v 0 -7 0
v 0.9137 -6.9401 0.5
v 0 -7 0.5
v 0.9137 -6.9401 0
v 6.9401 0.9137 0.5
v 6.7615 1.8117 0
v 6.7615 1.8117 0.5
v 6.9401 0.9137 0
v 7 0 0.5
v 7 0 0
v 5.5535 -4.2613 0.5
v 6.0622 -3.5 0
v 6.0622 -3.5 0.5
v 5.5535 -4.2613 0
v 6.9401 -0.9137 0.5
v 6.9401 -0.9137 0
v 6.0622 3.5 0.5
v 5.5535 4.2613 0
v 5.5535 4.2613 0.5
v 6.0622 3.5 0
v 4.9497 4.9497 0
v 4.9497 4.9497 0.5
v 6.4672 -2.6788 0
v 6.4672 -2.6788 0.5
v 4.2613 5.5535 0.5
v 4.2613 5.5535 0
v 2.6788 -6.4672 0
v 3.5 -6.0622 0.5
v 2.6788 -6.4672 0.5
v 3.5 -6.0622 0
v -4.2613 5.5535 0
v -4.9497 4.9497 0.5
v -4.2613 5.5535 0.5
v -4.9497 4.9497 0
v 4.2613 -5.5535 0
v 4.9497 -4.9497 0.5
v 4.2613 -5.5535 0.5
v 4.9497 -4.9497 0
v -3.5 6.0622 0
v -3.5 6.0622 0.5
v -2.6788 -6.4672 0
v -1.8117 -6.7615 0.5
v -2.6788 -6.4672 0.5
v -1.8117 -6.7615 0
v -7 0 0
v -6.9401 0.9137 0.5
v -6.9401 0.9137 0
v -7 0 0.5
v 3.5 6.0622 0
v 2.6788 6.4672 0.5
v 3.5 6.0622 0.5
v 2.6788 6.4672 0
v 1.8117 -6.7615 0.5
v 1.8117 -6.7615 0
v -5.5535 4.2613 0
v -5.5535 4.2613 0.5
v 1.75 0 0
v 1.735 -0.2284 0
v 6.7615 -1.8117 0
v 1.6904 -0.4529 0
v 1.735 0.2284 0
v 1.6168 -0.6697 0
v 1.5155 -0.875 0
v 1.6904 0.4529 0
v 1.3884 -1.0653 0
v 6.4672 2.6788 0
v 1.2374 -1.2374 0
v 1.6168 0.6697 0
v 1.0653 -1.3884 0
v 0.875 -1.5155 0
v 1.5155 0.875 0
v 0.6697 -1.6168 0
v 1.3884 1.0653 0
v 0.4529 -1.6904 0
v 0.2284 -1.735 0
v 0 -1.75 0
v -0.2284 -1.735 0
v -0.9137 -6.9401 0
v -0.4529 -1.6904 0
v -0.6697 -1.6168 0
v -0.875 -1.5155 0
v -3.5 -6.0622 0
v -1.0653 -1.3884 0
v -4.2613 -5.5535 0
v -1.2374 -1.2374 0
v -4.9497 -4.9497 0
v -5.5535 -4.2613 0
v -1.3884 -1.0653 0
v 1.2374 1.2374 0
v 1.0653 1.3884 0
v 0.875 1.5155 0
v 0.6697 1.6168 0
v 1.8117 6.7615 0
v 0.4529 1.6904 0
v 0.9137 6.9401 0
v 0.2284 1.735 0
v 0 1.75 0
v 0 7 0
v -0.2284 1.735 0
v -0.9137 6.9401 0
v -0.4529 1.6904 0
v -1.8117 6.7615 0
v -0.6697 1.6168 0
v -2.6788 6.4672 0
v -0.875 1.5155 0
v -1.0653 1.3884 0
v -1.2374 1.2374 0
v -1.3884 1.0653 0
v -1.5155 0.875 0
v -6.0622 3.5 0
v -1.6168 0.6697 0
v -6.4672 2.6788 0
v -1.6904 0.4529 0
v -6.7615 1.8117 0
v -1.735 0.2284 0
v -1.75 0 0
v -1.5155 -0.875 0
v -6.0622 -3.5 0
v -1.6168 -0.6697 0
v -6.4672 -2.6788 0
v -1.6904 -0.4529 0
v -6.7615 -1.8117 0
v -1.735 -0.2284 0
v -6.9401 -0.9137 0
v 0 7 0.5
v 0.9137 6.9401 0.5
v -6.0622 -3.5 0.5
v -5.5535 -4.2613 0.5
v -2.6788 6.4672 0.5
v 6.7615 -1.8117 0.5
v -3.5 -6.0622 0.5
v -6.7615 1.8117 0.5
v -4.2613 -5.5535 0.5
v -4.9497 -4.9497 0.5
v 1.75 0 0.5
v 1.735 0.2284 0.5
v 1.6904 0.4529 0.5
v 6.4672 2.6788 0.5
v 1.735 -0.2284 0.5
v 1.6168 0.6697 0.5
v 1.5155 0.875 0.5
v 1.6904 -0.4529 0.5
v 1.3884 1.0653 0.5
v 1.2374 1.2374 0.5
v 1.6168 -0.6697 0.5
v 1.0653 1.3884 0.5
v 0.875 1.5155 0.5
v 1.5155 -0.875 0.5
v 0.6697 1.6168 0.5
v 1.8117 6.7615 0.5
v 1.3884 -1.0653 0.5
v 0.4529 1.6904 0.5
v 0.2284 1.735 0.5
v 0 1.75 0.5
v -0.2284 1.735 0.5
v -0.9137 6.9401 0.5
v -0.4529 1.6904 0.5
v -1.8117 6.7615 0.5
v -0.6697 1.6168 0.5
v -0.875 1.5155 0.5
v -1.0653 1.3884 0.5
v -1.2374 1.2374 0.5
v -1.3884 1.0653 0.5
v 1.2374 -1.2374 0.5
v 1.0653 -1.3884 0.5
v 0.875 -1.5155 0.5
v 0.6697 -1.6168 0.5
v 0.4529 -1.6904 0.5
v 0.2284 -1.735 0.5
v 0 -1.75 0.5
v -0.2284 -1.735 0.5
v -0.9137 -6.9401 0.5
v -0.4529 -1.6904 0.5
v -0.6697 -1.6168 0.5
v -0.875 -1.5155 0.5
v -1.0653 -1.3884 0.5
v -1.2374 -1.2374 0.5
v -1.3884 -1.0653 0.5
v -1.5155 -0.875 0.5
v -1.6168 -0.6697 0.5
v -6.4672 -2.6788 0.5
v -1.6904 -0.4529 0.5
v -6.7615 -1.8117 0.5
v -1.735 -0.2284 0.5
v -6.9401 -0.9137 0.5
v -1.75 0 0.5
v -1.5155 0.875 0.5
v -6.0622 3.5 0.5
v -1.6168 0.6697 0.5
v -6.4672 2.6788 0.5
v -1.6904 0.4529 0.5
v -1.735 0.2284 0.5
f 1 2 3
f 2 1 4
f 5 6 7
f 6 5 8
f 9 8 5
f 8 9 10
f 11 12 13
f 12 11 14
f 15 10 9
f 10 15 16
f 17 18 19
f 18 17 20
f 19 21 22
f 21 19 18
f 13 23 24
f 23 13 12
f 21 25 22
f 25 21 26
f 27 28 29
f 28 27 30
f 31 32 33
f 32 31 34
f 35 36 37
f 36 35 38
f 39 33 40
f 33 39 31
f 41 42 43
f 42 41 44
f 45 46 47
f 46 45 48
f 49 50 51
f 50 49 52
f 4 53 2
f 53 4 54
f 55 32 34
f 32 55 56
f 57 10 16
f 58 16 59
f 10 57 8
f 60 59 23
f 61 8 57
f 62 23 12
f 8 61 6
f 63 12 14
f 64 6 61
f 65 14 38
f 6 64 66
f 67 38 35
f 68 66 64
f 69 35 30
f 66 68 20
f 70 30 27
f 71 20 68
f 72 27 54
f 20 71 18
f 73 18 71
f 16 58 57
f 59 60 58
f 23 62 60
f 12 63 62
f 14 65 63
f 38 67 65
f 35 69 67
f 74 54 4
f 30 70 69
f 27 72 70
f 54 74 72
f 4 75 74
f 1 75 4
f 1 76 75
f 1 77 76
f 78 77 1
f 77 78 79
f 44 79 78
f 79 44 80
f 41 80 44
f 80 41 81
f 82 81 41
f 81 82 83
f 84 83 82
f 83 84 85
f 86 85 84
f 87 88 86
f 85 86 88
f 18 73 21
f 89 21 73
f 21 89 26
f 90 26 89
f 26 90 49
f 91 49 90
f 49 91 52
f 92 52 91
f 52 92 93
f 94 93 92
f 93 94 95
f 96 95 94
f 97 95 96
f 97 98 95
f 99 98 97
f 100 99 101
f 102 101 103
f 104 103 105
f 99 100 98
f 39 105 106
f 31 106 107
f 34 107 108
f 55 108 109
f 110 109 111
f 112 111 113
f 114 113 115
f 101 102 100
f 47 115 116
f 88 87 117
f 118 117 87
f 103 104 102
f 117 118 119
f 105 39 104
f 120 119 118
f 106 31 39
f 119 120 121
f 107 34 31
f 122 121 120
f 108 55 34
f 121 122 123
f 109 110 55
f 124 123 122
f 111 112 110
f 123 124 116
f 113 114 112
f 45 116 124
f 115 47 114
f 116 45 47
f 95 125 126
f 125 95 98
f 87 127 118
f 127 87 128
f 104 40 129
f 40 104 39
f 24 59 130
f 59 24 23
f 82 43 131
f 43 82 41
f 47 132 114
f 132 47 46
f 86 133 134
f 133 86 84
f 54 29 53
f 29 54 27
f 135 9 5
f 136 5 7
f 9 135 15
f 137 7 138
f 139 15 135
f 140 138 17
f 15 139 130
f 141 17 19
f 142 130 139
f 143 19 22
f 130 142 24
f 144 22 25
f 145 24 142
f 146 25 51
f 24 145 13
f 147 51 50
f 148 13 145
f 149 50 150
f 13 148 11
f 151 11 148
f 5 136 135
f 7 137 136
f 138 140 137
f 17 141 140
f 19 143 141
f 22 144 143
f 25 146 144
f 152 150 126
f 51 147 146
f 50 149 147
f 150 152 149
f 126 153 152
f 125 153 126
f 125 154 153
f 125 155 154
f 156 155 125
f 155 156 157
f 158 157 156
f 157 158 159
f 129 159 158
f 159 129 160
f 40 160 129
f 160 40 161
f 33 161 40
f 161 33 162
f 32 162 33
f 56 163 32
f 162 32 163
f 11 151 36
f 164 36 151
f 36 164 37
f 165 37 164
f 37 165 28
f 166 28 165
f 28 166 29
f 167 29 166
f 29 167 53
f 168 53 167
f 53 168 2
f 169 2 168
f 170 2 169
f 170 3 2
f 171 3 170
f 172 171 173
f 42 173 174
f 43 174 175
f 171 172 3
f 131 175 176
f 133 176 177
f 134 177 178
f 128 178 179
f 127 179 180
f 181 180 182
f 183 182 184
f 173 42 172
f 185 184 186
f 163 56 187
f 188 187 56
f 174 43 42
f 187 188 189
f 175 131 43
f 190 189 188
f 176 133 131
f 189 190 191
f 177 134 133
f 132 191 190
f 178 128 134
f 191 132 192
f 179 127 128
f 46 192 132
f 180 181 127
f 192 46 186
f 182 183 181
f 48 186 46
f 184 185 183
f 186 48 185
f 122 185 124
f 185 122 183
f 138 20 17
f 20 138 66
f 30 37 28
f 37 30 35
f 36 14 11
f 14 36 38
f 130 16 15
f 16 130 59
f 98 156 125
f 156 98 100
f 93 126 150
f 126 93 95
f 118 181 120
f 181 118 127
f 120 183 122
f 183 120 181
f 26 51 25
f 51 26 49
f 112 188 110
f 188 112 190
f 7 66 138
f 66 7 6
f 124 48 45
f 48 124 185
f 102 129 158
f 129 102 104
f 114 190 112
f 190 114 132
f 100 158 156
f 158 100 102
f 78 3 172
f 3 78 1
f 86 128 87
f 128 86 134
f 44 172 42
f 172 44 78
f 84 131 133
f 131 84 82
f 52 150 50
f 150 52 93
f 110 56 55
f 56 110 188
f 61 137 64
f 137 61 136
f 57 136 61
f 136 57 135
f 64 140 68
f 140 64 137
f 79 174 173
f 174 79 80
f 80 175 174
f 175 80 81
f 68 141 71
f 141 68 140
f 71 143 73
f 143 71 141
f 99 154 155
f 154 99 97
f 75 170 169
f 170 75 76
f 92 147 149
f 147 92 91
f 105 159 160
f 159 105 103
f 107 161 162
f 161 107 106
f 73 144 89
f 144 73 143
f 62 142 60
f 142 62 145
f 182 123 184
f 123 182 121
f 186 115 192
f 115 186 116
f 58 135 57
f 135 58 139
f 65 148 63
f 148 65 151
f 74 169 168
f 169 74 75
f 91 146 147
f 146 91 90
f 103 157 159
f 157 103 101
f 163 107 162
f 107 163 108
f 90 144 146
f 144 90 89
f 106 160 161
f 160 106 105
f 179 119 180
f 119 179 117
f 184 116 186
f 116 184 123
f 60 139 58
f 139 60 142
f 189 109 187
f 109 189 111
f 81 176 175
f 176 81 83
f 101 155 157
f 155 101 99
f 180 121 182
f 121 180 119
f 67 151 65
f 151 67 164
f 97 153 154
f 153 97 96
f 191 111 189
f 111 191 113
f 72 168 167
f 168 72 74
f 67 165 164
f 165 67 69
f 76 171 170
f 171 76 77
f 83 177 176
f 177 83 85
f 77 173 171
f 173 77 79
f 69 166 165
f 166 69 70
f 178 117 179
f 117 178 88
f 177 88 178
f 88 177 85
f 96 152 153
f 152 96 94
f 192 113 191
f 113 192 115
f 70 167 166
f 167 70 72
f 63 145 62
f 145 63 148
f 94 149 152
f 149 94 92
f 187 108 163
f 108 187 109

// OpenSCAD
// Gen-CQ — assembly gap shim, h = run_clear (rotor face -> flange); copper is inside the flanges
include <parameters.scad>;
$fn = 48;
difference() {
    cylinder(d=spacer_pad_od, h=gap_spacer_h);
    translate([0, 0, -0.1]) cylinder(d=spacer_pad_id, h=gap_spacer_h + 0.2);
}
